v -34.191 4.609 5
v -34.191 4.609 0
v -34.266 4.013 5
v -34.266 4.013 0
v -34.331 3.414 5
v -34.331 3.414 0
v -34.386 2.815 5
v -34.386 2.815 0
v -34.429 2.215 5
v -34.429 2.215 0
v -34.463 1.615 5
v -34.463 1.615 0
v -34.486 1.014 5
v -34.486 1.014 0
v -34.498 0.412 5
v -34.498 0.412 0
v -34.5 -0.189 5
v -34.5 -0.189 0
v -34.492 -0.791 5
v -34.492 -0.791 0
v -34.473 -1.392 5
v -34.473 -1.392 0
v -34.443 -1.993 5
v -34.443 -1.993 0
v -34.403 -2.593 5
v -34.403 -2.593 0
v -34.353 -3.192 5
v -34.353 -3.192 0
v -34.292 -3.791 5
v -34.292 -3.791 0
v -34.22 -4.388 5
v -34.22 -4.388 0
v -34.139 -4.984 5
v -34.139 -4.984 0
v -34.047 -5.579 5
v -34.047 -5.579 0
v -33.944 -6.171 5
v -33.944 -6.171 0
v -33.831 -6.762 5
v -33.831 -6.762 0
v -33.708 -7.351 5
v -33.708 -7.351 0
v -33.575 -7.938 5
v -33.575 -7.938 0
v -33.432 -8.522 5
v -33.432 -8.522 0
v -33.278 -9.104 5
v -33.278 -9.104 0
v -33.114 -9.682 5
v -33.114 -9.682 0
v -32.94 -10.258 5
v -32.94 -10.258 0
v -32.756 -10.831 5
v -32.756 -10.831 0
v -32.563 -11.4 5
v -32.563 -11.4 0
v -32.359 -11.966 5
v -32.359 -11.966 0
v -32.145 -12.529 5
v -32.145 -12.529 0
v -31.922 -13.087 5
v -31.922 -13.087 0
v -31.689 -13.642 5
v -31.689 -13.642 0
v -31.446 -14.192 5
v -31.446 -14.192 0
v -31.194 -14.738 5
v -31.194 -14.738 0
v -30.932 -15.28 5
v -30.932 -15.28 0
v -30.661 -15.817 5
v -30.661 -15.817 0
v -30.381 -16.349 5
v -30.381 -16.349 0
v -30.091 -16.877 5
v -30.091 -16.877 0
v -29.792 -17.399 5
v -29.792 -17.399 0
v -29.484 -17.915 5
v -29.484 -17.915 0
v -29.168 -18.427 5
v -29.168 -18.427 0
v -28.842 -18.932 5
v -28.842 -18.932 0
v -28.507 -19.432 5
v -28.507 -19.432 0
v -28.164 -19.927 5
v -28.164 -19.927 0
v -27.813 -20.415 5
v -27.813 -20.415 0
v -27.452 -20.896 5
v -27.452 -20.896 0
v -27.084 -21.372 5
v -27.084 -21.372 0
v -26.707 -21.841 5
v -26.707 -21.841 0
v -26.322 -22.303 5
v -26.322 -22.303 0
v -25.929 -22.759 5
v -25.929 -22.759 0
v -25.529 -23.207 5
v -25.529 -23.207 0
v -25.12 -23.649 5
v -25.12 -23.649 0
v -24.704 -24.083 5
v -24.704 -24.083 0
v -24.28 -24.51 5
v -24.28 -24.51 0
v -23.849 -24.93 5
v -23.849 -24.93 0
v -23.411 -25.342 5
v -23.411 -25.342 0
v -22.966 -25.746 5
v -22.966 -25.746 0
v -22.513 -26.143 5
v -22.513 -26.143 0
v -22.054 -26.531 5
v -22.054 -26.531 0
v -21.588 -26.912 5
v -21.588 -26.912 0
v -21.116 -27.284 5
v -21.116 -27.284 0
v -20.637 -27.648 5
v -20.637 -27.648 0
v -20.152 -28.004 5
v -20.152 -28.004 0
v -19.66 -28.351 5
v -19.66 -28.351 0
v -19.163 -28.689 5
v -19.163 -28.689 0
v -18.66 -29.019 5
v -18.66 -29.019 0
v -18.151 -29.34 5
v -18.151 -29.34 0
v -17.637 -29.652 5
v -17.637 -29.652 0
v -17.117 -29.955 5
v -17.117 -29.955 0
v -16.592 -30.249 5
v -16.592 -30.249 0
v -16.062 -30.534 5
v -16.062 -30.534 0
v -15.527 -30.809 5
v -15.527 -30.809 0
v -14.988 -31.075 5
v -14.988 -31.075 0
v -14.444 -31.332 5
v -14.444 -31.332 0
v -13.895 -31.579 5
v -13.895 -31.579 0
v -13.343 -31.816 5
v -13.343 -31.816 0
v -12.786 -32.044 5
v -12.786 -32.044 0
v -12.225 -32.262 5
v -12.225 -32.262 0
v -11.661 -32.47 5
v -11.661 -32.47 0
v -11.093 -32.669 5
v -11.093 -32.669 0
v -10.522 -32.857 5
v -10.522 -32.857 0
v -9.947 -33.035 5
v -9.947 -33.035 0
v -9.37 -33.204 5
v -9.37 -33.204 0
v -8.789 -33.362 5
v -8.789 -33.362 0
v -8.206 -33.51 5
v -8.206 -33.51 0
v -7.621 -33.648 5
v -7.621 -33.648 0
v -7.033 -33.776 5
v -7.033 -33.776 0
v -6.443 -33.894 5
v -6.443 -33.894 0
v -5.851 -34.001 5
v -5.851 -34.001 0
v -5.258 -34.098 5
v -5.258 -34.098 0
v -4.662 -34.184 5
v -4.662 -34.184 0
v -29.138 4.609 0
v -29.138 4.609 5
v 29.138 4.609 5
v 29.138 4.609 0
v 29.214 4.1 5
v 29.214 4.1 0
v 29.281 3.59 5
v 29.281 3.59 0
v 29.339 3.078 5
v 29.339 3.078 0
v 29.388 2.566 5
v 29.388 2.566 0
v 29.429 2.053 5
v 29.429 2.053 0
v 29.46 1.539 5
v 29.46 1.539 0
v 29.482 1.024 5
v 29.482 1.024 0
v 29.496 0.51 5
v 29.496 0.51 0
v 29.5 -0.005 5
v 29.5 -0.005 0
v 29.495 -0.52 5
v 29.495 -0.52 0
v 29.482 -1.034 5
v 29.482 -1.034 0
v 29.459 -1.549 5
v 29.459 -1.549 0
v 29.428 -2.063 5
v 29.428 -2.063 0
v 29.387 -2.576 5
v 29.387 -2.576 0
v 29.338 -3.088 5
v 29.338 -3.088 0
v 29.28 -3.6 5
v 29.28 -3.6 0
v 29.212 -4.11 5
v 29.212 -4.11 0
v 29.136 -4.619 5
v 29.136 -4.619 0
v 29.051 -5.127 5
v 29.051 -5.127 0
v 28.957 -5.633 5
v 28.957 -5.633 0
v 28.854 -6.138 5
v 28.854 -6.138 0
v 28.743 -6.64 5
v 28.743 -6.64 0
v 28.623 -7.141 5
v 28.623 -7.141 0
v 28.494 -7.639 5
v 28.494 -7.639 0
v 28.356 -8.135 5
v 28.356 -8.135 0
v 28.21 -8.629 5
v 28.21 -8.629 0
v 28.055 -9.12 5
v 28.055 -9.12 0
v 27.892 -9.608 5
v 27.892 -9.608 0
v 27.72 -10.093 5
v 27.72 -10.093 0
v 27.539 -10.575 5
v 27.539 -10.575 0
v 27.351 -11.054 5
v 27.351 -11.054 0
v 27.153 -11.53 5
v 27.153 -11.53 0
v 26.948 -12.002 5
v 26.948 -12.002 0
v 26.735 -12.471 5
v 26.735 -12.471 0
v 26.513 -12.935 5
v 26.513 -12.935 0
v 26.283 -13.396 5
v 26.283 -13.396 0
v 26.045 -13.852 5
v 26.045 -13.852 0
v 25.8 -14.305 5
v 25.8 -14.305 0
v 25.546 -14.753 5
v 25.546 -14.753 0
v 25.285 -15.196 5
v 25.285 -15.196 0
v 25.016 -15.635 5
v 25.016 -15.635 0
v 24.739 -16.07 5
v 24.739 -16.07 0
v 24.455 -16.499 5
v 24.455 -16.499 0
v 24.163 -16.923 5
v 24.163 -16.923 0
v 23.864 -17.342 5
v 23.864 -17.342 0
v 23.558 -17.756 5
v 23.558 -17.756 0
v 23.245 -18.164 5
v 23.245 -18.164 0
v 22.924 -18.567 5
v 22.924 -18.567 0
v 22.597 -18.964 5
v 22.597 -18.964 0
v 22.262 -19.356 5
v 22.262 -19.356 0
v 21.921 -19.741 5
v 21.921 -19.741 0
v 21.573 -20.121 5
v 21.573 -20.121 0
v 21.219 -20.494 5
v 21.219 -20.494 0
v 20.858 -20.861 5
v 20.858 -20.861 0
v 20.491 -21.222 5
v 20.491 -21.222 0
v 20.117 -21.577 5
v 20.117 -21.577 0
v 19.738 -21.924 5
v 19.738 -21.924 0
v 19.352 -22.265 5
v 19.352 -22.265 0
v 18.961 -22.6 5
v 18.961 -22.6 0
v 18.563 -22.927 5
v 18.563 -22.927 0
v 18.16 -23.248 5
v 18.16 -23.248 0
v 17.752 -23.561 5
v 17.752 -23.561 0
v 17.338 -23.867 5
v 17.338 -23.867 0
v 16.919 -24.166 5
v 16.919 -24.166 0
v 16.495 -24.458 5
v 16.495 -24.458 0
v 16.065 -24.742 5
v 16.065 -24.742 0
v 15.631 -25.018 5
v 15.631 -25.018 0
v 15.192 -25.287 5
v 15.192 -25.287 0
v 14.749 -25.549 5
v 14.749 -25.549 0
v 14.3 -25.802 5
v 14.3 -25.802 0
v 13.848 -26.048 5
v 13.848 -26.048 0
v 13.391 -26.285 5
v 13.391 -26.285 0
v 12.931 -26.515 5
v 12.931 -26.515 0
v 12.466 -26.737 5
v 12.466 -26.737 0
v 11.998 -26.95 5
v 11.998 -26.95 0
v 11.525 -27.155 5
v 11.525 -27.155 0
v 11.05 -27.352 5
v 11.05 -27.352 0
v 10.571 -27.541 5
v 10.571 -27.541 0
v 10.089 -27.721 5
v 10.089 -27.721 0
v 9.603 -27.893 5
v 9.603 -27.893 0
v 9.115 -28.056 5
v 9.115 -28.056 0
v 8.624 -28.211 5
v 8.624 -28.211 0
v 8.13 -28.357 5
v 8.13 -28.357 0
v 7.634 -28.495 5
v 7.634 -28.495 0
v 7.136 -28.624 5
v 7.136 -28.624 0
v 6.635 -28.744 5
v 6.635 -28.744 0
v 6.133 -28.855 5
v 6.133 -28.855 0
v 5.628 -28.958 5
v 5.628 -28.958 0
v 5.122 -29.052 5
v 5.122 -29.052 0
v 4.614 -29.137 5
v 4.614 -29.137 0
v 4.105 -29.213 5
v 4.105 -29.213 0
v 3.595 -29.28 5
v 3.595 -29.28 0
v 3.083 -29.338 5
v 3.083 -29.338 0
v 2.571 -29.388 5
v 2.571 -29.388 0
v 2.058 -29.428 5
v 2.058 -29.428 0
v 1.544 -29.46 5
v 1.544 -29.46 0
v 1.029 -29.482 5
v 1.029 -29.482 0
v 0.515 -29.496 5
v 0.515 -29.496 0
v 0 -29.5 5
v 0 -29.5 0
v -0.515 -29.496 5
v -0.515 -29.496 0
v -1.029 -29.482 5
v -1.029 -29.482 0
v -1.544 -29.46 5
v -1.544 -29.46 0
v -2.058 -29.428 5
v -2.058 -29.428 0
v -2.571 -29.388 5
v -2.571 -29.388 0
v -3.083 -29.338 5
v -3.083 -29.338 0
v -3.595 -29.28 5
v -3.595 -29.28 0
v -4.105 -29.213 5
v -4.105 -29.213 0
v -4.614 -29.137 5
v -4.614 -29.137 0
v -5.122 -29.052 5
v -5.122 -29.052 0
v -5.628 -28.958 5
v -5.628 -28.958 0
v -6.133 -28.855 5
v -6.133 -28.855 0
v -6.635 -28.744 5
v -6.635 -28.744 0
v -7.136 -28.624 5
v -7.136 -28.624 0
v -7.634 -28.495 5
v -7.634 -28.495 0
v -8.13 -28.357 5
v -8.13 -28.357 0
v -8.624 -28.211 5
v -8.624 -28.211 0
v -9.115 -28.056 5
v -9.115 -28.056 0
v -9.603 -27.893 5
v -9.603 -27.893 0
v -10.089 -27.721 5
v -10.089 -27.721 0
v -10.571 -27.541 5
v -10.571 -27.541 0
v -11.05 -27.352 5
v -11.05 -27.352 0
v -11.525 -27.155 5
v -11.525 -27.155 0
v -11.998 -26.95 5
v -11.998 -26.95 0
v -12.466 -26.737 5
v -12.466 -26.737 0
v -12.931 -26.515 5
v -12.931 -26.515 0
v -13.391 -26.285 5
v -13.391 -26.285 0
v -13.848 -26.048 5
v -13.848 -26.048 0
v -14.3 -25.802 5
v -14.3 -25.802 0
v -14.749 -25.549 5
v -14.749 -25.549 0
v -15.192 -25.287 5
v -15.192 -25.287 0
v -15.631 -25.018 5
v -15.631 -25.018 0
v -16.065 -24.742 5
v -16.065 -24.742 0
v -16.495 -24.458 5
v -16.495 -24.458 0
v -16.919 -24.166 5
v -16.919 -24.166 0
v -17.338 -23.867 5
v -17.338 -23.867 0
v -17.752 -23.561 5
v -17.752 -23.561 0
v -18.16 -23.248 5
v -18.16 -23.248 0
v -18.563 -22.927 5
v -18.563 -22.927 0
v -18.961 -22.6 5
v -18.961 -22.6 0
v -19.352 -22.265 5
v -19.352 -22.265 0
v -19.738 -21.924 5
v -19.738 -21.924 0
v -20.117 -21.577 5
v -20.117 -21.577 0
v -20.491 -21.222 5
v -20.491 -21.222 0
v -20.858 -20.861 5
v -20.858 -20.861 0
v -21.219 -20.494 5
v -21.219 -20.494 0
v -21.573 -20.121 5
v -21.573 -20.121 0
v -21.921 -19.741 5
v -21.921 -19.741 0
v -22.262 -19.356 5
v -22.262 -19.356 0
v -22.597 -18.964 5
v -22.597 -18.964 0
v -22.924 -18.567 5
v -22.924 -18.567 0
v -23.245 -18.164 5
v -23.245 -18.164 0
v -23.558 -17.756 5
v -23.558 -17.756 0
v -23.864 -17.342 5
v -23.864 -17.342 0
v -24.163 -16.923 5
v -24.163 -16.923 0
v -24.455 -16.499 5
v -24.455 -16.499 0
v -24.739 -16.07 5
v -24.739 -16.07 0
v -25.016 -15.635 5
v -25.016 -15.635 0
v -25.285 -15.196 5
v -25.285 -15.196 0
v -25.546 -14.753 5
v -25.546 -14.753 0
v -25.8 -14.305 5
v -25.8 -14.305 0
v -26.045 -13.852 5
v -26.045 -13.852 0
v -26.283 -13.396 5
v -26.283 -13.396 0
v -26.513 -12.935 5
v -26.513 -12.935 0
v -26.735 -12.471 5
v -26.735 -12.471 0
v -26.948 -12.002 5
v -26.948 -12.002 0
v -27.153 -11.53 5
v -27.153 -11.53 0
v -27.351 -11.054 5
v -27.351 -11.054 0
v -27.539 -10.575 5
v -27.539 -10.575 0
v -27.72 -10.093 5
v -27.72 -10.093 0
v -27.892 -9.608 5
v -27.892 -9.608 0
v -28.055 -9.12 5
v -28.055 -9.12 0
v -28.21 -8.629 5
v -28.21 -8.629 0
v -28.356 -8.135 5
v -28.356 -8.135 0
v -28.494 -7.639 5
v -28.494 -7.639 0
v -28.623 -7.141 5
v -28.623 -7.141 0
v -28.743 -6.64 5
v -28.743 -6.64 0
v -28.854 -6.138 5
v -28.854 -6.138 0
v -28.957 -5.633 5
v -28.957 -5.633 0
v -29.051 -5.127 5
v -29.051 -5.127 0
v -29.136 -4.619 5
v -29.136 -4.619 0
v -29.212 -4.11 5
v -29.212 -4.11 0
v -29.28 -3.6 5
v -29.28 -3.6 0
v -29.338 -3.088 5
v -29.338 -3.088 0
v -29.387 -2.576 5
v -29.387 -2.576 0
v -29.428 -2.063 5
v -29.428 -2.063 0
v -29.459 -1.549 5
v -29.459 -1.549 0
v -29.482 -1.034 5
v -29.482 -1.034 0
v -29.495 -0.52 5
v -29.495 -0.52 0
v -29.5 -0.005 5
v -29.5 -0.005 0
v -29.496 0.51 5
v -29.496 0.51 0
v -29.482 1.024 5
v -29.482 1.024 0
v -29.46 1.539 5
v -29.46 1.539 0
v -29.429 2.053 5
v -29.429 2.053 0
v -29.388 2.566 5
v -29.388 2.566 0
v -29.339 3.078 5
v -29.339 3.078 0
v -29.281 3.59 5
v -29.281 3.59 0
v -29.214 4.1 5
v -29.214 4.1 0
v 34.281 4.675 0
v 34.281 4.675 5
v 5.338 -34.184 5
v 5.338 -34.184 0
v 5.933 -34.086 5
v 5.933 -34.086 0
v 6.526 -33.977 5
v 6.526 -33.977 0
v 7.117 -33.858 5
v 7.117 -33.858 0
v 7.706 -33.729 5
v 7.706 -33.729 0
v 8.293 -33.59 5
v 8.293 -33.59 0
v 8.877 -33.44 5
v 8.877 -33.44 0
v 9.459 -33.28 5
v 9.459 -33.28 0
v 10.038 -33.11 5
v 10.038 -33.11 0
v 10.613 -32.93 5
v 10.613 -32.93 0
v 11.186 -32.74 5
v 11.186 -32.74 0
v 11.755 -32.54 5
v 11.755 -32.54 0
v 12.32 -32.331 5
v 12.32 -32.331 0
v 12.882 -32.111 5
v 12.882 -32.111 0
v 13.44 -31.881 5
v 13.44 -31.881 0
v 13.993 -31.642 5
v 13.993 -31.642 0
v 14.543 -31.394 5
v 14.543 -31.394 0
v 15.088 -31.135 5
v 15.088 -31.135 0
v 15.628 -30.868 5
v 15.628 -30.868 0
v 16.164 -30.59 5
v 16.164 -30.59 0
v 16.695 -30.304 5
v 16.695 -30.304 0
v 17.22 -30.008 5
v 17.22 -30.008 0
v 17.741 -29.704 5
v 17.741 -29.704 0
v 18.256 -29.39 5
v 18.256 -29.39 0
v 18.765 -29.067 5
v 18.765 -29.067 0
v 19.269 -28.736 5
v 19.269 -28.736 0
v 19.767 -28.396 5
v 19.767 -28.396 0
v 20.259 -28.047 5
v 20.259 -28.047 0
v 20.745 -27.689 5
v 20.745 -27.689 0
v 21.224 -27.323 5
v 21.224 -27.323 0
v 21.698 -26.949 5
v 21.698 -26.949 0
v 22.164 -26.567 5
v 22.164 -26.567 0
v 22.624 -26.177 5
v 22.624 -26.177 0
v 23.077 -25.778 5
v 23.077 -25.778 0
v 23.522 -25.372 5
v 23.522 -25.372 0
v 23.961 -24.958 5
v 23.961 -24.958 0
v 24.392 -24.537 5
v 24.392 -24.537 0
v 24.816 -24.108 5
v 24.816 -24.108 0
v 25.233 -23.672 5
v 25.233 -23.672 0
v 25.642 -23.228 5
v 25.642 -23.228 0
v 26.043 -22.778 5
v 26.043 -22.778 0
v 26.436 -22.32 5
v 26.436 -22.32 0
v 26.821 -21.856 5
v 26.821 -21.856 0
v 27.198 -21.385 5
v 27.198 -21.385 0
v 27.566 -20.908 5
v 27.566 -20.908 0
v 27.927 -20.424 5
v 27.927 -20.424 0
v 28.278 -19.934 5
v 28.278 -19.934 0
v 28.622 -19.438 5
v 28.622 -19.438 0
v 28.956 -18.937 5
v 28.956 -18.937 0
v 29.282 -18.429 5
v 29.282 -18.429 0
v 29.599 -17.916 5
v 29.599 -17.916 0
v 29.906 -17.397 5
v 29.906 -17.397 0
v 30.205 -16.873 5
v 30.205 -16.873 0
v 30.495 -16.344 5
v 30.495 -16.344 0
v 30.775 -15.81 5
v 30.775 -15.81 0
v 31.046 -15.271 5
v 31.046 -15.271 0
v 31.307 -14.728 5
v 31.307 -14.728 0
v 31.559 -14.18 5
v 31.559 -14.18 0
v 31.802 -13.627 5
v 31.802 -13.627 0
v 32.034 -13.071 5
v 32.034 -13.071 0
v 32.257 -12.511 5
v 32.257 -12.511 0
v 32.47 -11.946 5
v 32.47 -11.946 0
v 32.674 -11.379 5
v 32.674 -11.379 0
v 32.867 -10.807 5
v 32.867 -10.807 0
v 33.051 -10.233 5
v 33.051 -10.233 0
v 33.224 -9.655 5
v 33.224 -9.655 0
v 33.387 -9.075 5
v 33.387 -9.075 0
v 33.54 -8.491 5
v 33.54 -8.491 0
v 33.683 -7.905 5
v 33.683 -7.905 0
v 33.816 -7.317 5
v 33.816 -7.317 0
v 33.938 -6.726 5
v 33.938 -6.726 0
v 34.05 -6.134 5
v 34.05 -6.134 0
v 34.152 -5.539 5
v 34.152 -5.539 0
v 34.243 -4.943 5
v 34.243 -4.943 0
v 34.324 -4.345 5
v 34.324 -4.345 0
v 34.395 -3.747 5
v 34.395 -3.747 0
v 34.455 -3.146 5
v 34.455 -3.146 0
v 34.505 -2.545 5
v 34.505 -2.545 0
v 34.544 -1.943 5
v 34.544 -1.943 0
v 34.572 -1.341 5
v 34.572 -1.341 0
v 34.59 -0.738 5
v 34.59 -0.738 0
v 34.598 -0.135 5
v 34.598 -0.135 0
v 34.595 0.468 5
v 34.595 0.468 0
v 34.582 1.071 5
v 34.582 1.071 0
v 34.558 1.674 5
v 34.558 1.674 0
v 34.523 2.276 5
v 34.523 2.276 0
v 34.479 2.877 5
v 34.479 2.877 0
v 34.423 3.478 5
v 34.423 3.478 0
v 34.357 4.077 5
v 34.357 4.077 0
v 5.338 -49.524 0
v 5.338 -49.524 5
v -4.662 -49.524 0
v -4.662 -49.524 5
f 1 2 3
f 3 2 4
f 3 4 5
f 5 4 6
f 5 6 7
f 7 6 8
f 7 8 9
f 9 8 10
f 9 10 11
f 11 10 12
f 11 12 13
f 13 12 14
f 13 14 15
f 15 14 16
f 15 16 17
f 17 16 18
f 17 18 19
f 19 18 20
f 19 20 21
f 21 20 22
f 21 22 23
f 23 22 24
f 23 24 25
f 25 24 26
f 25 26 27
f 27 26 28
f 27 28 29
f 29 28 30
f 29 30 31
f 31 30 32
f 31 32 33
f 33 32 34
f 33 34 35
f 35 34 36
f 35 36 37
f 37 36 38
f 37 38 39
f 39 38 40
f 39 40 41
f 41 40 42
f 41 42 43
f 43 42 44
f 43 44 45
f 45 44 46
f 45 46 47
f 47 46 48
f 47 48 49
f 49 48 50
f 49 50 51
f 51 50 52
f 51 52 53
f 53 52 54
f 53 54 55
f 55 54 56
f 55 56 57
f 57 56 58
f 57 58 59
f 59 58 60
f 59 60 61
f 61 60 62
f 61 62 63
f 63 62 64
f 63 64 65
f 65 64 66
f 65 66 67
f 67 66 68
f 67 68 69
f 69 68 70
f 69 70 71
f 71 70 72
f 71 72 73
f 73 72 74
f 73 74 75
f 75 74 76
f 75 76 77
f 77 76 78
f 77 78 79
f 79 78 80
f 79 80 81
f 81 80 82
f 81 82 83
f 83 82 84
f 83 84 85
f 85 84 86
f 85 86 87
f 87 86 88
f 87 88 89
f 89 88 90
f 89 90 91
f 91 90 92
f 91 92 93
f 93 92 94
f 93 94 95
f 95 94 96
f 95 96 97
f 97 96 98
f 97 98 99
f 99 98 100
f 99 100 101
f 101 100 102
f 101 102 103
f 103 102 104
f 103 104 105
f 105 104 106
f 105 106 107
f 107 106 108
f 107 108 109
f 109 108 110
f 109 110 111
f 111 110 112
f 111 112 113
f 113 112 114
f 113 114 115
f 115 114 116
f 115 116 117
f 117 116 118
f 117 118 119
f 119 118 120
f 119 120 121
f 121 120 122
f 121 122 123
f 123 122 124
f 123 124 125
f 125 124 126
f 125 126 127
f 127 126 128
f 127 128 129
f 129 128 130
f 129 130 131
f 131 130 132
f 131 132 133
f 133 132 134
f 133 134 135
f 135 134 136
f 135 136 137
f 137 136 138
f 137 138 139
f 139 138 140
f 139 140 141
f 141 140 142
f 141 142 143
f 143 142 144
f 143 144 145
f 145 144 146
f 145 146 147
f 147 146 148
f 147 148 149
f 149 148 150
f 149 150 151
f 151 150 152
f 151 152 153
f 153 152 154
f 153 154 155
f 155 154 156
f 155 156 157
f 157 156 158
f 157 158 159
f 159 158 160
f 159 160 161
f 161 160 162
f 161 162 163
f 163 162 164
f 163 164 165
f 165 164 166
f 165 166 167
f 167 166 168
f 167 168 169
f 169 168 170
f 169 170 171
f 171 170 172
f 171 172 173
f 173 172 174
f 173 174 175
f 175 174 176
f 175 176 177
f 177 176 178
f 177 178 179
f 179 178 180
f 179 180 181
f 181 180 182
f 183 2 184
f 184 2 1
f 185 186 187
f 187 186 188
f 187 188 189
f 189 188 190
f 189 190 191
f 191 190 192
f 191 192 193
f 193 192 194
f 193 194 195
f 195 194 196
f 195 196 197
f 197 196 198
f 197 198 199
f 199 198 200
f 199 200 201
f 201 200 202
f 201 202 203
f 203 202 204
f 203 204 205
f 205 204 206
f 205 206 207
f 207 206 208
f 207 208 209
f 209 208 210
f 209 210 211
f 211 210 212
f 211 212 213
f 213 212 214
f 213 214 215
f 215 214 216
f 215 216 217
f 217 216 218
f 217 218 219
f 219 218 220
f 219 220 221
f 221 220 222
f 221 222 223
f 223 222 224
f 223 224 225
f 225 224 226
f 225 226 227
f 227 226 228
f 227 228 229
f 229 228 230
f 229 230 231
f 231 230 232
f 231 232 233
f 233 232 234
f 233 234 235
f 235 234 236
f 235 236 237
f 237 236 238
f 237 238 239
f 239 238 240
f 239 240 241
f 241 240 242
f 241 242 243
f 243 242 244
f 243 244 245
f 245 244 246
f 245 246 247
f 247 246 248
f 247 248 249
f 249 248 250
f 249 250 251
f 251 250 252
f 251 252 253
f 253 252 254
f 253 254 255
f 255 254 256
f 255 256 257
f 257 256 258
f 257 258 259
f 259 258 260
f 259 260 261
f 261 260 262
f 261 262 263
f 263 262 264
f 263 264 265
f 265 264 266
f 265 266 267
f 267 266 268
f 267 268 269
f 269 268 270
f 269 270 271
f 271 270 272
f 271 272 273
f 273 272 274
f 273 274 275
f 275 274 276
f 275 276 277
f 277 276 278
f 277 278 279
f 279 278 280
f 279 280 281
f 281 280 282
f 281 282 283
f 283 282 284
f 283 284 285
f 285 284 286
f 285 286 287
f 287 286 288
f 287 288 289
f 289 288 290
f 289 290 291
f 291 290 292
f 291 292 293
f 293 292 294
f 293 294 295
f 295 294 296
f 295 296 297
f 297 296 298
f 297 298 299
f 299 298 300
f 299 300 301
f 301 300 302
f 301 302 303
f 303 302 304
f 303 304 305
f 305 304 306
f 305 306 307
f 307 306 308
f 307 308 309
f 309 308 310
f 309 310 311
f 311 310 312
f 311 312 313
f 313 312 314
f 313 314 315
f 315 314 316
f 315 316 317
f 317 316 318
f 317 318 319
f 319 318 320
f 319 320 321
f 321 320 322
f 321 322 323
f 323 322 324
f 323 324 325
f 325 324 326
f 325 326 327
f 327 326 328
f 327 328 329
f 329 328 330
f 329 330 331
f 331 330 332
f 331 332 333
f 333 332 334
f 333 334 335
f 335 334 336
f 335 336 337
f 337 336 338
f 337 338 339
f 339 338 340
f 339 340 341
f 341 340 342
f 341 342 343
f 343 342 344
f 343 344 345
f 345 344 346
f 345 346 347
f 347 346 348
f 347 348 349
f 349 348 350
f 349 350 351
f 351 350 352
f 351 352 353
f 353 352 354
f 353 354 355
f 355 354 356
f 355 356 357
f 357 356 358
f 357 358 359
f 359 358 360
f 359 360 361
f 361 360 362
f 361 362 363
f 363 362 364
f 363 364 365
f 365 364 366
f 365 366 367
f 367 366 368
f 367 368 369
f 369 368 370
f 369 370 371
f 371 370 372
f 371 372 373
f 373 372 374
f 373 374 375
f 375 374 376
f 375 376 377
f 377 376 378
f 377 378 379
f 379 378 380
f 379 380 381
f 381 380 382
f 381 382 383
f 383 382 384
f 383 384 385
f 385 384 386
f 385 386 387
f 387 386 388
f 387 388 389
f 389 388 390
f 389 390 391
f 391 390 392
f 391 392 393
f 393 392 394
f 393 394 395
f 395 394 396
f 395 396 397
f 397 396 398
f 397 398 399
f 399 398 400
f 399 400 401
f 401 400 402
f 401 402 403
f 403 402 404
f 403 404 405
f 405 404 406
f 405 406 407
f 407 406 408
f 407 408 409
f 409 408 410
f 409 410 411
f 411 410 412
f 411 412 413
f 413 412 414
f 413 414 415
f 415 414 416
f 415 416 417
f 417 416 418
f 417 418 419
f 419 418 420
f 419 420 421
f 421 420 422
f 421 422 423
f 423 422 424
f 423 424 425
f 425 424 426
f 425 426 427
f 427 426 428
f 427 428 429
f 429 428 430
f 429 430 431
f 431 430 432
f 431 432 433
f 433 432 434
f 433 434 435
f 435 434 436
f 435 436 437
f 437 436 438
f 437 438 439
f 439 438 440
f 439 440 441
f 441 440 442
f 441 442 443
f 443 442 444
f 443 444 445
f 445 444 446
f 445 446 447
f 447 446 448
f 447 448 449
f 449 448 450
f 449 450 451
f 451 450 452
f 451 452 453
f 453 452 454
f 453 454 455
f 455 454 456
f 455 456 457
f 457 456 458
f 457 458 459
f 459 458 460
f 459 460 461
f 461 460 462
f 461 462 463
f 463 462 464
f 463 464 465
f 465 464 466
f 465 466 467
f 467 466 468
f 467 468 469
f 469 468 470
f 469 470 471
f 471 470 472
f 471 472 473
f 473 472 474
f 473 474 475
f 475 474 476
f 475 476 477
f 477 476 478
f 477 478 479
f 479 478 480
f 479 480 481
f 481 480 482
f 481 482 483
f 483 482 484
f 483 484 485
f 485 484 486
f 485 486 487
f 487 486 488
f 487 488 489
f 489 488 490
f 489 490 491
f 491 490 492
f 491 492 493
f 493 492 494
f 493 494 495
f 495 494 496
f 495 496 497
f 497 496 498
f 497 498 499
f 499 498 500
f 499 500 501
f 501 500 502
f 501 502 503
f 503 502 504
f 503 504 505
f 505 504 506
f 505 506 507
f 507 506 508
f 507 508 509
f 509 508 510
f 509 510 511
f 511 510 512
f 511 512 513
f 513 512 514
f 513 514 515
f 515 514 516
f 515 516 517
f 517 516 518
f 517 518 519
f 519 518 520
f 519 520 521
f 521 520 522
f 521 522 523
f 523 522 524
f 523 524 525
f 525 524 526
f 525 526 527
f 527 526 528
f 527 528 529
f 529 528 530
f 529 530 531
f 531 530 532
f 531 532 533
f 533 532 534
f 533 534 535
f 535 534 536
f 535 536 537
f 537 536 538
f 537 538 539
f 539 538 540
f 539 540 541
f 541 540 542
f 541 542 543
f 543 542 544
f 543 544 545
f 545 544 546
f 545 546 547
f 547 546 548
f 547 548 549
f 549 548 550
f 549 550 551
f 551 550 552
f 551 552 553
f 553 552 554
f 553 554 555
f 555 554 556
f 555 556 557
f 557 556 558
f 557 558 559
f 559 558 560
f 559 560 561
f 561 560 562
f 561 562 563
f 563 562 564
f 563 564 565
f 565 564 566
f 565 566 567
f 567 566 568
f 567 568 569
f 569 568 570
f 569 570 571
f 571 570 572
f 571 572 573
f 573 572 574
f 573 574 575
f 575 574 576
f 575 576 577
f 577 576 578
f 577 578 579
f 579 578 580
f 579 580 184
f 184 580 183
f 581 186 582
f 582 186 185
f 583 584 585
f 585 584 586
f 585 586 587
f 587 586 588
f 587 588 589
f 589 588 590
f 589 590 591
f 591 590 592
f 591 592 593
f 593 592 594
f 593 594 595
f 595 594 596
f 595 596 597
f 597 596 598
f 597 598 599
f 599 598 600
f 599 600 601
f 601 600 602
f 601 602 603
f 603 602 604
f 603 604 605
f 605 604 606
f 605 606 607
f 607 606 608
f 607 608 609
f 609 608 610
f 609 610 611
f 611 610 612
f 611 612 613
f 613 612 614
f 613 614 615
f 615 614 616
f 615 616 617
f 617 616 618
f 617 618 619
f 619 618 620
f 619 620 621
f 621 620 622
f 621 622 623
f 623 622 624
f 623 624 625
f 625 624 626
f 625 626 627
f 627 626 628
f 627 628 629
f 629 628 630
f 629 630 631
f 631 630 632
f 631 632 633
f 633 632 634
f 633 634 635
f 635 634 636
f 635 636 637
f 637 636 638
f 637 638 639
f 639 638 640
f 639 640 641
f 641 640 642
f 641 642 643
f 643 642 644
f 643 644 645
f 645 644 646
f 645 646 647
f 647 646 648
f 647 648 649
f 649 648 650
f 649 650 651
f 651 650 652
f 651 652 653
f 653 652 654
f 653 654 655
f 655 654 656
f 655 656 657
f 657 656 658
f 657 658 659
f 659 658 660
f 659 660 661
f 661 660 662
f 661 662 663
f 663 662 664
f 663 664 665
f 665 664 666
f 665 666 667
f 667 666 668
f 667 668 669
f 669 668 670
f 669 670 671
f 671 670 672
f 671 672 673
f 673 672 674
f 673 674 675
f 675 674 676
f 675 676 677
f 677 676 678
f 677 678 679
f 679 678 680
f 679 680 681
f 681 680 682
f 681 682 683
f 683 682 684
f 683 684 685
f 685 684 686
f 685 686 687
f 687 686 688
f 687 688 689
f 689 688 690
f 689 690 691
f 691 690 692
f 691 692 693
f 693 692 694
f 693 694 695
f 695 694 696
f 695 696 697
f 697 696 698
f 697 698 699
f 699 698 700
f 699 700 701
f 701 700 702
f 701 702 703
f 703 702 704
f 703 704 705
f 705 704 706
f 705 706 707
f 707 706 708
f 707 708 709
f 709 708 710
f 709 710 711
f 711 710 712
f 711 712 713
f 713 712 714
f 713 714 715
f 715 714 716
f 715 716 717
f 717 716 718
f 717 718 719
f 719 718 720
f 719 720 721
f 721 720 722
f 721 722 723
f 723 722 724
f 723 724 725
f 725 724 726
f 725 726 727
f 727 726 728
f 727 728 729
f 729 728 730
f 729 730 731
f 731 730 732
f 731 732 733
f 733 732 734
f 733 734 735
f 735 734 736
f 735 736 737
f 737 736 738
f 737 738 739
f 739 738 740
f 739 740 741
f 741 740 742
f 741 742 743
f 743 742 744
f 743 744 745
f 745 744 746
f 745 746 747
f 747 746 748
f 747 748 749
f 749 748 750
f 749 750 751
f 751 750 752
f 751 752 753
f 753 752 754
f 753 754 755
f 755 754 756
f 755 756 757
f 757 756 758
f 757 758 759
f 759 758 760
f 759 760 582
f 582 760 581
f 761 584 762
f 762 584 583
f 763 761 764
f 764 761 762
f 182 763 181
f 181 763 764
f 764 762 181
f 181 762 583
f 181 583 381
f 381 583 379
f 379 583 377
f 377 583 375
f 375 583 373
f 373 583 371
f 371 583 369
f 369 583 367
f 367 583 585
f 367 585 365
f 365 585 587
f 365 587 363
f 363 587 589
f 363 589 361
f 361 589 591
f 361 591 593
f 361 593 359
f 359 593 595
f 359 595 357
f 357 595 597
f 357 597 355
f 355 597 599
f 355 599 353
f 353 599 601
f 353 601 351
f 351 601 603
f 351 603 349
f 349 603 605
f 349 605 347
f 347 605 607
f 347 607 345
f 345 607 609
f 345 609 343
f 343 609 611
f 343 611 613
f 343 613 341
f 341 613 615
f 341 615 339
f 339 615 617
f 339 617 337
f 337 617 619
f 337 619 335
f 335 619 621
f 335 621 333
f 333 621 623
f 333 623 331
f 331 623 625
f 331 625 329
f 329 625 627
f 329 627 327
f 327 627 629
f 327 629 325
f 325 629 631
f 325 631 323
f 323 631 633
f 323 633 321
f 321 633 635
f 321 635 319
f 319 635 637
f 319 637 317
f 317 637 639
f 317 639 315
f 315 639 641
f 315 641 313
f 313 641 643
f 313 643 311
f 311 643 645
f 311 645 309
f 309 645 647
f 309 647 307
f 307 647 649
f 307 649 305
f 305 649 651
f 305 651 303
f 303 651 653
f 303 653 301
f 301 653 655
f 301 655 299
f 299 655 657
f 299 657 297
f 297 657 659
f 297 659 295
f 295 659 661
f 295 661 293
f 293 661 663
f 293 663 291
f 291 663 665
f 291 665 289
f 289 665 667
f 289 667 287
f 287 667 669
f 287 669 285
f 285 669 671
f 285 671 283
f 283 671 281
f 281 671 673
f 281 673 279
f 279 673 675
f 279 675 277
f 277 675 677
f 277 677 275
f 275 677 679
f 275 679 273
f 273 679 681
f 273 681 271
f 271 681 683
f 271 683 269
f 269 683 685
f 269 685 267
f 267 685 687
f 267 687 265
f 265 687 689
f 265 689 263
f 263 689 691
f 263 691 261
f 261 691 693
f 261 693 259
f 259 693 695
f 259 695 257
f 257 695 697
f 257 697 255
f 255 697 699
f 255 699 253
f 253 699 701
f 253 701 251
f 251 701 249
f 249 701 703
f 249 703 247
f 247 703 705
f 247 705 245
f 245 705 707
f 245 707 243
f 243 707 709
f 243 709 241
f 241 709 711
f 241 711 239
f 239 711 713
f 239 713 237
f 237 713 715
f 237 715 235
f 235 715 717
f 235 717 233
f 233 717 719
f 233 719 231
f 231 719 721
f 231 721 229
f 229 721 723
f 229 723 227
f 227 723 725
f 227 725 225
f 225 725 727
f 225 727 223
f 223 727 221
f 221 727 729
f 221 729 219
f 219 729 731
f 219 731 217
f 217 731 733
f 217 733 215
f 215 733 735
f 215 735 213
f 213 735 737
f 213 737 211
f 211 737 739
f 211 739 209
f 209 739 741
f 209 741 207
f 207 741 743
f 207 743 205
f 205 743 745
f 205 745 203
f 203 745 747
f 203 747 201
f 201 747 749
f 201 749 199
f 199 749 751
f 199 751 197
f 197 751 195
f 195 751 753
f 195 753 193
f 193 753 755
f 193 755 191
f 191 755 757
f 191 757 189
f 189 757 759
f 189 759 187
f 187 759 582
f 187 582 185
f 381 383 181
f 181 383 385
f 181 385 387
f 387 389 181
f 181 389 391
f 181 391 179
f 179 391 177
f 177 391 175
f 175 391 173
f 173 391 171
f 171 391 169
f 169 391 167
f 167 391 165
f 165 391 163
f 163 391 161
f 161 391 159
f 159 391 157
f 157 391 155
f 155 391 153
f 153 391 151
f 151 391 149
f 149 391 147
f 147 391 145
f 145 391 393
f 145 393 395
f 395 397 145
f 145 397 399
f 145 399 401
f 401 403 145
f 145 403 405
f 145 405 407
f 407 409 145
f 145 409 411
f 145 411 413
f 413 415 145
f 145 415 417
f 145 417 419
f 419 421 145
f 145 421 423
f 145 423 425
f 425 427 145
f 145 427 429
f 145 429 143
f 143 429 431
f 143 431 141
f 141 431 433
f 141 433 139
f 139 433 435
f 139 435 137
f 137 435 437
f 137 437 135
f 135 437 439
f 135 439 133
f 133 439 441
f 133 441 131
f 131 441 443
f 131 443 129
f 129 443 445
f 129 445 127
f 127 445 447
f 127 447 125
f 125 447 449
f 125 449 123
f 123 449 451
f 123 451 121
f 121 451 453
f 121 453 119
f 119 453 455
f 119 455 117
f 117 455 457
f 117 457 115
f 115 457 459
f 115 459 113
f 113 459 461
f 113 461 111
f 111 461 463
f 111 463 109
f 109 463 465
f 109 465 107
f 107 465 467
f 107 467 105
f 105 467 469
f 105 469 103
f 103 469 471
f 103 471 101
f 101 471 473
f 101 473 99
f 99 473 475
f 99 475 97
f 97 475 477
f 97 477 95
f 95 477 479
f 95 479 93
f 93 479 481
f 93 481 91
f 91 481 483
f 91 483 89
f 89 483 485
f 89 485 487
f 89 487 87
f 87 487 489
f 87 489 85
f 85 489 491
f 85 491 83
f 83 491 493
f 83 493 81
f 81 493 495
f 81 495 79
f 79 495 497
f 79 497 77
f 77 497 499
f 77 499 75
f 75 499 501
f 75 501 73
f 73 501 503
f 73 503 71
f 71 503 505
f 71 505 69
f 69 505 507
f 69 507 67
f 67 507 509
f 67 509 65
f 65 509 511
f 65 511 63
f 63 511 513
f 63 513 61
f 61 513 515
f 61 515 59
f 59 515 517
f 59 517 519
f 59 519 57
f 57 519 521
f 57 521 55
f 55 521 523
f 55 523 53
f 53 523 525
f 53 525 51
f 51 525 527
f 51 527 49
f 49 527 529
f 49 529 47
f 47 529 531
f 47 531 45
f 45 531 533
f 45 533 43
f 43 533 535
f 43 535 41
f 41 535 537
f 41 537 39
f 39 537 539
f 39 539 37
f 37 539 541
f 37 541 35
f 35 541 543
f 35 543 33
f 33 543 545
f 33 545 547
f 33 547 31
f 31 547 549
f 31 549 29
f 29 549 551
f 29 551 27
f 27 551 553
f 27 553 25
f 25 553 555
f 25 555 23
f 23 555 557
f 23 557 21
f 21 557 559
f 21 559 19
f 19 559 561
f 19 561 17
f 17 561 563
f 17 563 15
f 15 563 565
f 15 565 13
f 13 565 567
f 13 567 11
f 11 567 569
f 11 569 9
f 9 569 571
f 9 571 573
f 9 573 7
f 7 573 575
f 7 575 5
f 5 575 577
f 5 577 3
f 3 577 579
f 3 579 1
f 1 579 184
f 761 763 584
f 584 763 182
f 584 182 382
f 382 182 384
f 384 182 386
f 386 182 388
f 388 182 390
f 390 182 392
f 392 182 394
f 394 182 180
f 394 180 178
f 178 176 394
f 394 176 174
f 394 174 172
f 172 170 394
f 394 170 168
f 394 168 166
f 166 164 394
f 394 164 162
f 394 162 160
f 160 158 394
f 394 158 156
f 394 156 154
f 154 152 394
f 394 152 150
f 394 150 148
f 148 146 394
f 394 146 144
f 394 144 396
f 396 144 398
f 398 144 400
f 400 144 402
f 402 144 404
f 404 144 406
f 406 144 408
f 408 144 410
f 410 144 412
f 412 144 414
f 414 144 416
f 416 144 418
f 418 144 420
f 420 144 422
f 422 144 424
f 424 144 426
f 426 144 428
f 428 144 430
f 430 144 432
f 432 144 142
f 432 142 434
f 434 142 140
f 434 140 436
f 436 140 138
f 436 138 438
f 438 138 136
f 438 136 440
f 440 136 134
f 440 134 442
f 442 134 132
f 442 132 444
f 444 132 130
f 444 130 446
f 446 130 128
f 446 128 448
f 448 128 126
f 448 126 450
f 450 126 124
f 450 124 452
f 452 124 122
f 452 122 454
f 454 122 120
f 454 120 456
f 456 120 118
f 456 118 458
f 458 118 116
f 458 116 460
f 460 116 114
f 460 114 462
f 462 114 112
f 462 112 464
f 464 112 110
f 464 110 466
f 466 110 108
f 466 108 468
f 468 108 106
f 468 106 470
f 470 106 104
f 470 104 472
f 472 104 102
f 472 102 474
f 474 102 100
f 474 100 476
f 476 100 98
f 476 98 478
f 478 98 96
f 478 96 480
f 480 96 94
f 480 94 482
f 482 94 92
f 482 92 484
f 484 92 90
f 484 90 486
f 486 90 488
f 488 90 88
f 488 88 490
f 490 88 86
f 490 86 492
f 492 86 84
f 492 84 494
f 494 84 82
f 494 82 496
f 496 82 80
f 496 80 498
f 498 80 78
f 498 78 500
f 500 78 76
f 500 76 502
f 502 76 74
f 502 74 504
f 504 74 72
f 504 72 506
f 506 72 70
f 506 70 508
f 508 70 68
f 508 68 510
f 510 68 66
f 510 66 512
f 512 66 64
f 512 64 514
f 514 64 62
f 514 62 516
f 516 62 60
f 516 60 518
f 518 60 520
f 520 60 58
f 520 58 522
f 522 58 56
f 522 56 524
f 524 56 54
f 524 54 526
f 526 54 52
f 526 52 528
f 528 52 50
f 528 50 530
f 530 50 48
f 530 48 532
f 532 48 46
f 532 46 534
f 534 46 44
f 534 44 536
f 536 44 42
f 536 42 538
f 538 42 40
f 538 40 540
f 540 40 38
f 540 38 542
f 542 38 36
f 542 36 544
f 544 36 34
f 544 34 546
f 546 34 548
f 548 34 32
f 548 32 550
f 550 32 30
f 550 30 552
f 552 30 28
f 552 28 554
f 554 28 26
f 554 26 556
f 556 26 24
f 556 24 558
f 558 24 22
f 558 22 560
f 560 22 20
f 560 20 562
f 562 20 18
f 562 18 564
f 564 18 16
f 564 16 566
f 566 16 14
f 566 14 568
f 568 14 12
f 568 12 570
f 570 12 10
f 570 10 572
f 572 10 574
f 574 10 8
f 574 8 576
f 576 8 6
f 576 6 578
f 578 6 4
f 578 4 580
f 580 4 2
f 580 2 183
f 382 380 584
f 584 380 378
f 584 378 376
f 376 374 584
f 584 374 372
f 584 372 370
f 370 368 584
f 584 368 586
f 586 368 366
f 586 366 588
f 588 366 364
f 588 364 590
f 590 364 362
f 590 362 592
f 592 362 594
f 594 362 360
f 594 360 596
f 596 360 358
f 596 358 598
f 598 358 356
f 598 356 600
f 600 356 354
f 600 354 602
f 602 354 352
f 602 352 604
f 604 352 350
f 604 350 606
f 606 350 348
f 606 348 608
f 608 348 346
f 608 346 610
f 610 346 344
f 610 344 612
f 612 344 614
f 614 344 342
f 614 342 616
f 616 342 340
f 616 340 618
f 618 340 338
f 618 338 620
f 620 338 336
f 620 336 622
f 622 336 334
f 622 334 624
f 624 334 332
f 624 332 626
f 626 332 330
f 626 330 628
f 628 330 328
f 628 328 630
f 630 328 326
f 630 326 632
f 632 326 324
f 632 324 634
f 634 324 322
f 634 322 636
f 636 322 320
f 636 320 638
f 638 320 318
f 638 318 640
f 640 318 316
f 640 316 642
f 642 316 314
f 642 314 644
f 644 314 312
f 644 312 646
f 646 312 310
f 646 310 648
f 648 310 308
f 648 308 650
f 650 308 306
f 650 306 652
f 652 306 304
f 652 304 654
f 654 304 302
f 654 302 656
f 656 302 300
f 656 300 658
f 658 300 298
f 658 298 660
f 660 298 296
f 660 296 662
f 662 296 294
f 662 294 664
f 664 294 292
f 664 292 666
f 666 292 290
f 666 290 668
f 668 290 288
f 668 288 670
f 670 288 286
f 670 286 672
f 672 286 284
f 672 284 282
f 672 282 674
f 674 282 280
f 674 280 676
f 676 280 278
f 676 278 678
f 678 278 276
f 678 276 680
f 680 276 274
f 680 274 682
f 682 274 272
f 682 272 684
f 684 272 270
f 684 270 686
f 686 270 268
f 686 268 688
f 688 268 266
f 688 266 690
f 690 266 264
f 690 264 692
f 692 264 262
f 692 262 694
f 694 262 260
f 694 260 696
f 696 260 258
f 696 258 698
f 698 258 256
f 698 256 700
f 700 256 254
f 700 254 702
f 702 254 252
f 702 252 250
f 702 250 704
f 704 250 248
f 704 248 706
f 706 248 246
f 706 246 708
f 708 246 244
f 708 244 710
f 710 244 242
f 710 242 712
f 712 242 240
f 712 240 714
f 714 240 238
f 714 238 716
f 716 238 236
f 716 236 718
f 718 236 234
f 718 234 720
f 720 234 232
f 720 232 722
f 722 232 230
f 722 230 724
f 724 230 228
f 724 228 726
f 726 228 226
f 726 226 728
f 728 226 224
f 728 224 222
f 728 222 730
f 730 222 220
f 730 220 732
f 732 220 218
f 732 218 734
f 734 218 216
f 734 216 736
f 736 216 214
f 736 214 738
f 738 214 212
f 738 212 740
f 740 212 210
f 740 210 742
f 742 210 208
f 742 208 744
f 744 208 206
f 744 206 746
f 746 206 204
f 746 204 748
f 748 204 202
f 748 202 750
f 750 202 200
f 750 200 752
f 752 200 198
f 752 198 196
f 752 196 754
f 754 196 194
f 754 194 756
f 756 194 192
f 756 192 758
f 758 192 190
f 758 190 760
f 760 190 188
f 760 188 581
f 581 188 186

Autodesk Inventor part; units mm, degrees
ref_plane "YZ Plane" through (0, 0, 0) normal (1, 0, 0) x (0, 1, 0)
ref_plane "XZ Plane" through (0, 0, 0) normal (0, 1, 0) x (-1, 0, 0)
ref_plane "XY Plane" through (0, 0, 0) normal (0, 0, 1) x (1, 0, 0)
sketch "Sketch1" plane through (0, 0, 0) normal (0, 0, 1) x (1, 0, 0)
  arc A0 (-29.1377, 4.6094) -> (29.1377, 4.6094) centre (0, 0) ccw
  line L0 (-29.1377, 4.6094) -> (-34.1913, 4.6094)
  line L1 (29.1377, 4.6094) -> (34.281, 4.6755)
  line L2 (29.1377, 4.6094) -> (34.281, 4.6755) construction
  line L3 (5.3378, -34.5235) -> (5.3378, -49.5235)
  line L4 (5.3378, -49.5235) -> (-4.6622, -49.5235)
  line L5 (-4.6622, -49.5235) -> (-4.6622, -34.5235)
  line L6 (-4.6622, -34.5235) -> (-4.6622, -34.1841)
  line L7 (5.3378, -34.5235) -> (5.3378, -34.1841)
  arc A1 (-34.1913, 4.6094) -> (-4.6622, -34.1841) centre (0, 0) ccw
  arc A2 (5.3378, -34.1841) -> (34.281, 4.6755) centre (0, 0) ccw
  dimension "d0" = 59
  dimension "d5" = 10
  dimension "d6" = 15
extrude "Extrusion1" add sketch "Sketch1" along normal blind 5
properties part number "Clip_TestFitV1"
